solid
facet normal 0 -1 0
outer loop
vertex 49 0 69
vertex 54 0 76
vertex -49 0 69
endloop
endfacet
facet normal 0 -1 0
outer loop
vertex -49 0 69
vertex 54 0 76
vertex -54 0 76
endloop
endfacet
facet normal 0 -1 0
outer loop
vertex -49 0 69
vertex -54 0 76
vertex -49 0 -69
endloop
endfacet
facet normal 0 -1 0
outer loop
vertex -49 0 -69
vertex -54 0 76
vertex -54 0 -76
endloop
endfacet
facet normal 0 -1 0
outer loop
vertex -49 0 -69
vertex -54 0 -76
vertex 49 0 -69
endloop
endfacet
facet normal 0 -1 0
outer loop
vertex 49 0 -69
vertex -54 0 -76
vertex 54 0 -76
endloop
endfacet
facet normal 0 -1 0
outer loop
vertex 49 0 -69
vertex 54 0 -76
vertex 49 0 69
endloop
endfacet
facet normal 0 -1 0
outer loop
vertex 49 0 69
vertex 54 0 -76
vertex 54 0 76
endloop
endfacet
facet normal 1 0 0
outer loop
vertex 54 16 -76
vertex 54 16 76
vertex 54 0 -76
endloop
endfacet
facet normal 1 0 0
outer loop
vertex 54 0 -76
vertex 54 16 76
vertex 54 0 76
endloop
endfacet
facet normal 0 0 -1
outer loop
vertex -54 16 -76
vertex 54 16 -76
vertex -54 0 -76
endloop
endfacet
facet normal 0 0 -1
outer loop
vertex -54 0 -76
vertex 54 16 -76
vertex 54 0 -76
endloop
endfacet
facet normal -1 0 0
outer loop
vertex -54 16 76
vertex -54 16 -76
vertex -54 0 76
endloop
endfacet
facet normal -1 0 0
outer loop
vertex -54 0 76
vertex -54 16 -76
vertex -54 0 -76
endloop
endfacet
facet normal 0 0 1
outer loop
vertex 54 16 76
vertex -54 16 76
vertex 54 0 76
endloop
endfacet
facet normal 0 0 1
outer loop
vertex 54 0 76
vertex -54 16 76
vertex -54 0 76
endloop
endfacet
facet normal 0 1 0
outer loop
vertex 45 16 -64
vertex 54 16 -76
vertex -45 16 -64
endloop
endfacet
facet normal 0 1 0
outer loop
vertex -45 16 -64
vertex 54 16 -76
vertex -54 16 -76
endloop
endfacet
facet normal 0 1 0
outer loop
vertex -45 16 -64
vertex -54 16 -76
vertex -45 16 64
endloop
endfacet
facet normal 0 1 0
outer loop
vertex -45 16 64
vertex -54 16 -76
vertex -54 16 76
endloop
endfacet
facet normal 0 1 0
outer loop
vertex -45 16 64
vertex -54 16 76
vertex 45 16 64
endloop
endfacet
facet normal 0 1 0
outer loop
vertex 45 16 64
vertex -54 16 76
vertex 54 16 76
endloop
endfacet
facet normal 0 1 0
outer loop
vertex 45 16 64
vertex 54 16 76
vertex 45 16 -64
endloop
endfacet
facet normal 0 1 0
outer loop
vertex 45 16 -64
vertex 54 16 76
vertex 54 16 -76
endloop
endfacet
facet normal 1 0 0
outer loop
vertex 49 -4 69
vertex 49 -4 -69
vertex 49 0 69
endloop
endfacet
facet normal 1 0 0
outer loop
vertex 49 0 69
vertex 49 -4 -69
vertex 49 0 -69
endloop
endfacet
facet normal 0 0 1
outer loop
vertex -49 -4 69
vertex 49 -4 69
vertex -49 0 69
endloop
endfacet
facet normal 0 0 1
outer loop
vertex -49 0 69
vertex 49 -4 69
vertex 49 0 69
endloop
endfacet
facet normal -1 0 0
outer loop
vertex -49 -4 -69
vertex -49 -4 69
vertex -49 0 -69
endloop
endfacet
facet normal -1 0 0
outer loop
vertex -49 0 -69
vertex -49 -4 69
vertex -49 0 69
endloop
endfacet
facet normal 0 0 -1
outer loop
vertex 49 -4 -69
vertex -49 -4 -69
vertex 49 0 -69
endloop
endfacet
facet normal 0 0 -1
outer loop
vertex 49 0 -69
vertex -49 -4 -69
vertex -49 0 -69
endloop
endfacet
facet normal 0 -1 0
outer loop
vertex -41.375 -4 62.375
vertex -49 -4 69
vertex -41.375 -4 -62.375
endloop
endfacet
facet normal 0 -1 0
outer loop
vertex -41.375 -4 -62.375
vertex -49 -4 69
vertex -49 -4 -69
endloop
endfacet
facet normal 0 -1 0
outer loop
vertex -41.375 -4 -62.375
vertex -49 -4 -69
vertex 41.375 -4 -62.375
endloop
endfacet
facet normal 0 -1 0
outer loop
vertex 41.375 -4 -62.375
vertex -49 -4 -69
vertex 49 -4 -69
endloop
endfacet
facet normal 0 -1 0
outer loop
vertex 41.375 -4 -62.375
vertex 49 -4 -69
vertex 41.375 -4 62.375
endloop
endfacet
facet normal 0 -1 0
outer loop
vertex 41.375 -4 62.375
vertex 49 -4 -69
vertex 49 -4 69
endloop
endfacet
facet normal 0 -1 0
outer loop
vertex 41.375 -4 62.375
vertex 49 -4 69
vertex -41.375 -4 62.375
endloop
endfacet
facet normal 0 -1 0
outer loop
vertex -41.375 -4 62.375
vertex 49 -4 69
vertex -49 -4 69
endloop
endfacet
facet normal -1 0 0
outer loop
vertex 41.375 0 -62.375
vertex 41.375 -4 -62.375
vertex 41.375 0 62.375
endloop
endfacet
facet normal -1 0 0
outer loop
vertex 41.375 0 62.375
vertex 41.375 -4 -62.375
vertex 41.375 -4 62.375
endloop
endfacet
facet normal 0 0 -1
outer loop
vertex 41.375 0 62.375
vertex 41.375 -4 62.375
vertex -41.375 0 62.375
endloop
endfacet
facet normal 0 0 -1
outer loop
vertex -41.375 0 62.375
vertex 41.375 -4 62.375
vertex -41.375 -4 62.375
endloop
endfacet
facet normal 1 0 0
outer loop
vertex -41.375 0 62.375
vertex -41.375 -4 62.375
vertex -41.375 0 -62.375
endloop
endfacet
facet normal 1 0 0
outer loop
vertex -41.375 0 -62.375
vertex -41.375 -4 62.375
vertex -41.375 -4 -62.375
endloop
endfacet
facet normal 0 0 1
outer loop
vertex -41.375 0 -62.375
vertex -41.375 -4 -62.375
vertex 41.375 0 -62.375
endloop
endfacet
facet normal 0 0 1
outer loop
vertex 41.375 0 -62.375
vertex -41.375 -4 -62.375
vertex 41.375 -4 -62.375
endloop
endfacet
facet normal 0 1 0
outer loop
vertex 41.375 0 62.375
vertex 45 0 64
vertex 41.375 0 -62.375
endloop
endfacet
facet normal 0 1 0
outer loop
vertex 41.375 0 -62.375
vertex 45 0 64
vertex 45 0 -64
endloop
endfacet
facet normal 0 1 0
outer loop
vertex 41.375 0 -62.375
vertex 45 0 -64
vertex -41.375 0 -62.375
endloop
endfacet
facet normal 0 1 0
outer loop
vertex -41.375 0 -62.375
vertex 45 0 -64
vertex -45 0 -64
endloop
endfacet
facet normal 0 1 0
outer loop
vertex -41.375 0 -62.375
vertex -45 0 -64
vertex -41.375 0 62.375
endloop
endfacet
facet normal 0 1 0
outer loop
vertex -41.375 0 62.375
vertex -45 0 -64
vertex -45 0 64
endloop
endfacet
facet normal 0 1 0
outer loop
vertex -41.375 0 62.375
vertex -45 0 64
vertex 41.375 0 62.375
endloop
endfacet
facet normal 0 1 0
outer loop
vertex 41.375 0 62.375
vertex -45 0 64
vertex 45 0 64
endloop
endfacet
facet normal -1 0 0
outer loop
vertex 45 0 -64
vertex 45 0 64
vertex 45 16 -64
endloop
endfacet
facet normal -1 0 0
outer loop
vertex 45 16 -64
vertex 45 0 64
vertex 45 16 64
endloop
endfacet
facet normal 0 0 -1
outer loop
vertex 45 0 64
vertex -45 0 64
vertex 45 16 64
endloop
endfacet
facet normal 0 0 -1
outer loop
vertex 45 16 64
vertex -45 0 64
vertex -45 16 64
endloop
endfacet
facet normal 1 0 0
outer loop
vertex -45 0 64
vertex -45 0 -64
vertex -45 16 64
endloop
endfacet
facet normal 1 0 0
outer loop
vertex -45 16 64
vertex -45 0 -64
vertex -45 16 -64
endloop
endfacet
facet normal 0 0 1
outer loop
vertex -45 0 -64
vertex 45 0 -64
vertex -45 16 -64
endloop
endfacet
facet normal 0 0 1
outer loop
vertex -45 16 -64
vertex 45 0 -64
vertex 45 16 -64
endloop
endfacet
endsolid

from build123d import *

# Parameters (mm, degrees)
SKETCH3_W           = 108
SKETCH3_H           = 152
BOSS_EXTRUDE1_DEPTH = 16
SKETCH7_W           = 98
SKETCH7_H           = 138
BOSS_EXTRUDE2_DEPTH = 4
SKETCH5_W           = 82.75
SKETCH5_H           = 124.75
CUT_EXTRUDE1_DEPTH  = 96.351979528
SKETCH6_W           = 90
SKETCH6_H           = 128
CUT_EXTRUDE2_DEPTH  = 16


with BuildPart() as part:
    # Sketch3 → Boss-Extrude1 (new body)
    with BuildSketch(Plane(origin=(0, 0, 0), x_dir=(1, 0, 0), z_dir=(0, 1, 0))):
        Rectangle(SKETCH3_W, SKETCH3_H)
    extrude(amount=BOSS_EXTRUDE1_DEPTH)

    # Sketch7 → Boss-Extrude2 (add)
    with BuildSketch(Plane.XZ):
        Rectangle(SKETCH7_W, SKETCH7_H)
    extrude(amount=BOSS_EXTRUDE2_DEPTH)

    # Sketch5 → Cut-Extrude1 (cut, through all)
    with BuildSketch(Plane(origin=(0, 16, 0), x_dir=(1, 0, 0), z_dir=(0, 1, 0))):
        Rectangle(SKETCH5_W, SKETCH5_H)
    extrude(amount=-CUT_EXTRUDE1_DEPTH, mode=Mode.SUBTRACT)

    # Sketch6 → Cut-Extrude2 (cut)
    with BuildSketch(Plane(origin=(0, 16, 0), x_dir=(1, 0, 0), z_dir=(0, 1, 0))):
        Rectangle(SKETCH6_W, SKETCH6_H)
    extrude(amount=-CUT_EXTRUDE2_DEPTH, mode=Mode.SUBTRACT)


solid = part.part
